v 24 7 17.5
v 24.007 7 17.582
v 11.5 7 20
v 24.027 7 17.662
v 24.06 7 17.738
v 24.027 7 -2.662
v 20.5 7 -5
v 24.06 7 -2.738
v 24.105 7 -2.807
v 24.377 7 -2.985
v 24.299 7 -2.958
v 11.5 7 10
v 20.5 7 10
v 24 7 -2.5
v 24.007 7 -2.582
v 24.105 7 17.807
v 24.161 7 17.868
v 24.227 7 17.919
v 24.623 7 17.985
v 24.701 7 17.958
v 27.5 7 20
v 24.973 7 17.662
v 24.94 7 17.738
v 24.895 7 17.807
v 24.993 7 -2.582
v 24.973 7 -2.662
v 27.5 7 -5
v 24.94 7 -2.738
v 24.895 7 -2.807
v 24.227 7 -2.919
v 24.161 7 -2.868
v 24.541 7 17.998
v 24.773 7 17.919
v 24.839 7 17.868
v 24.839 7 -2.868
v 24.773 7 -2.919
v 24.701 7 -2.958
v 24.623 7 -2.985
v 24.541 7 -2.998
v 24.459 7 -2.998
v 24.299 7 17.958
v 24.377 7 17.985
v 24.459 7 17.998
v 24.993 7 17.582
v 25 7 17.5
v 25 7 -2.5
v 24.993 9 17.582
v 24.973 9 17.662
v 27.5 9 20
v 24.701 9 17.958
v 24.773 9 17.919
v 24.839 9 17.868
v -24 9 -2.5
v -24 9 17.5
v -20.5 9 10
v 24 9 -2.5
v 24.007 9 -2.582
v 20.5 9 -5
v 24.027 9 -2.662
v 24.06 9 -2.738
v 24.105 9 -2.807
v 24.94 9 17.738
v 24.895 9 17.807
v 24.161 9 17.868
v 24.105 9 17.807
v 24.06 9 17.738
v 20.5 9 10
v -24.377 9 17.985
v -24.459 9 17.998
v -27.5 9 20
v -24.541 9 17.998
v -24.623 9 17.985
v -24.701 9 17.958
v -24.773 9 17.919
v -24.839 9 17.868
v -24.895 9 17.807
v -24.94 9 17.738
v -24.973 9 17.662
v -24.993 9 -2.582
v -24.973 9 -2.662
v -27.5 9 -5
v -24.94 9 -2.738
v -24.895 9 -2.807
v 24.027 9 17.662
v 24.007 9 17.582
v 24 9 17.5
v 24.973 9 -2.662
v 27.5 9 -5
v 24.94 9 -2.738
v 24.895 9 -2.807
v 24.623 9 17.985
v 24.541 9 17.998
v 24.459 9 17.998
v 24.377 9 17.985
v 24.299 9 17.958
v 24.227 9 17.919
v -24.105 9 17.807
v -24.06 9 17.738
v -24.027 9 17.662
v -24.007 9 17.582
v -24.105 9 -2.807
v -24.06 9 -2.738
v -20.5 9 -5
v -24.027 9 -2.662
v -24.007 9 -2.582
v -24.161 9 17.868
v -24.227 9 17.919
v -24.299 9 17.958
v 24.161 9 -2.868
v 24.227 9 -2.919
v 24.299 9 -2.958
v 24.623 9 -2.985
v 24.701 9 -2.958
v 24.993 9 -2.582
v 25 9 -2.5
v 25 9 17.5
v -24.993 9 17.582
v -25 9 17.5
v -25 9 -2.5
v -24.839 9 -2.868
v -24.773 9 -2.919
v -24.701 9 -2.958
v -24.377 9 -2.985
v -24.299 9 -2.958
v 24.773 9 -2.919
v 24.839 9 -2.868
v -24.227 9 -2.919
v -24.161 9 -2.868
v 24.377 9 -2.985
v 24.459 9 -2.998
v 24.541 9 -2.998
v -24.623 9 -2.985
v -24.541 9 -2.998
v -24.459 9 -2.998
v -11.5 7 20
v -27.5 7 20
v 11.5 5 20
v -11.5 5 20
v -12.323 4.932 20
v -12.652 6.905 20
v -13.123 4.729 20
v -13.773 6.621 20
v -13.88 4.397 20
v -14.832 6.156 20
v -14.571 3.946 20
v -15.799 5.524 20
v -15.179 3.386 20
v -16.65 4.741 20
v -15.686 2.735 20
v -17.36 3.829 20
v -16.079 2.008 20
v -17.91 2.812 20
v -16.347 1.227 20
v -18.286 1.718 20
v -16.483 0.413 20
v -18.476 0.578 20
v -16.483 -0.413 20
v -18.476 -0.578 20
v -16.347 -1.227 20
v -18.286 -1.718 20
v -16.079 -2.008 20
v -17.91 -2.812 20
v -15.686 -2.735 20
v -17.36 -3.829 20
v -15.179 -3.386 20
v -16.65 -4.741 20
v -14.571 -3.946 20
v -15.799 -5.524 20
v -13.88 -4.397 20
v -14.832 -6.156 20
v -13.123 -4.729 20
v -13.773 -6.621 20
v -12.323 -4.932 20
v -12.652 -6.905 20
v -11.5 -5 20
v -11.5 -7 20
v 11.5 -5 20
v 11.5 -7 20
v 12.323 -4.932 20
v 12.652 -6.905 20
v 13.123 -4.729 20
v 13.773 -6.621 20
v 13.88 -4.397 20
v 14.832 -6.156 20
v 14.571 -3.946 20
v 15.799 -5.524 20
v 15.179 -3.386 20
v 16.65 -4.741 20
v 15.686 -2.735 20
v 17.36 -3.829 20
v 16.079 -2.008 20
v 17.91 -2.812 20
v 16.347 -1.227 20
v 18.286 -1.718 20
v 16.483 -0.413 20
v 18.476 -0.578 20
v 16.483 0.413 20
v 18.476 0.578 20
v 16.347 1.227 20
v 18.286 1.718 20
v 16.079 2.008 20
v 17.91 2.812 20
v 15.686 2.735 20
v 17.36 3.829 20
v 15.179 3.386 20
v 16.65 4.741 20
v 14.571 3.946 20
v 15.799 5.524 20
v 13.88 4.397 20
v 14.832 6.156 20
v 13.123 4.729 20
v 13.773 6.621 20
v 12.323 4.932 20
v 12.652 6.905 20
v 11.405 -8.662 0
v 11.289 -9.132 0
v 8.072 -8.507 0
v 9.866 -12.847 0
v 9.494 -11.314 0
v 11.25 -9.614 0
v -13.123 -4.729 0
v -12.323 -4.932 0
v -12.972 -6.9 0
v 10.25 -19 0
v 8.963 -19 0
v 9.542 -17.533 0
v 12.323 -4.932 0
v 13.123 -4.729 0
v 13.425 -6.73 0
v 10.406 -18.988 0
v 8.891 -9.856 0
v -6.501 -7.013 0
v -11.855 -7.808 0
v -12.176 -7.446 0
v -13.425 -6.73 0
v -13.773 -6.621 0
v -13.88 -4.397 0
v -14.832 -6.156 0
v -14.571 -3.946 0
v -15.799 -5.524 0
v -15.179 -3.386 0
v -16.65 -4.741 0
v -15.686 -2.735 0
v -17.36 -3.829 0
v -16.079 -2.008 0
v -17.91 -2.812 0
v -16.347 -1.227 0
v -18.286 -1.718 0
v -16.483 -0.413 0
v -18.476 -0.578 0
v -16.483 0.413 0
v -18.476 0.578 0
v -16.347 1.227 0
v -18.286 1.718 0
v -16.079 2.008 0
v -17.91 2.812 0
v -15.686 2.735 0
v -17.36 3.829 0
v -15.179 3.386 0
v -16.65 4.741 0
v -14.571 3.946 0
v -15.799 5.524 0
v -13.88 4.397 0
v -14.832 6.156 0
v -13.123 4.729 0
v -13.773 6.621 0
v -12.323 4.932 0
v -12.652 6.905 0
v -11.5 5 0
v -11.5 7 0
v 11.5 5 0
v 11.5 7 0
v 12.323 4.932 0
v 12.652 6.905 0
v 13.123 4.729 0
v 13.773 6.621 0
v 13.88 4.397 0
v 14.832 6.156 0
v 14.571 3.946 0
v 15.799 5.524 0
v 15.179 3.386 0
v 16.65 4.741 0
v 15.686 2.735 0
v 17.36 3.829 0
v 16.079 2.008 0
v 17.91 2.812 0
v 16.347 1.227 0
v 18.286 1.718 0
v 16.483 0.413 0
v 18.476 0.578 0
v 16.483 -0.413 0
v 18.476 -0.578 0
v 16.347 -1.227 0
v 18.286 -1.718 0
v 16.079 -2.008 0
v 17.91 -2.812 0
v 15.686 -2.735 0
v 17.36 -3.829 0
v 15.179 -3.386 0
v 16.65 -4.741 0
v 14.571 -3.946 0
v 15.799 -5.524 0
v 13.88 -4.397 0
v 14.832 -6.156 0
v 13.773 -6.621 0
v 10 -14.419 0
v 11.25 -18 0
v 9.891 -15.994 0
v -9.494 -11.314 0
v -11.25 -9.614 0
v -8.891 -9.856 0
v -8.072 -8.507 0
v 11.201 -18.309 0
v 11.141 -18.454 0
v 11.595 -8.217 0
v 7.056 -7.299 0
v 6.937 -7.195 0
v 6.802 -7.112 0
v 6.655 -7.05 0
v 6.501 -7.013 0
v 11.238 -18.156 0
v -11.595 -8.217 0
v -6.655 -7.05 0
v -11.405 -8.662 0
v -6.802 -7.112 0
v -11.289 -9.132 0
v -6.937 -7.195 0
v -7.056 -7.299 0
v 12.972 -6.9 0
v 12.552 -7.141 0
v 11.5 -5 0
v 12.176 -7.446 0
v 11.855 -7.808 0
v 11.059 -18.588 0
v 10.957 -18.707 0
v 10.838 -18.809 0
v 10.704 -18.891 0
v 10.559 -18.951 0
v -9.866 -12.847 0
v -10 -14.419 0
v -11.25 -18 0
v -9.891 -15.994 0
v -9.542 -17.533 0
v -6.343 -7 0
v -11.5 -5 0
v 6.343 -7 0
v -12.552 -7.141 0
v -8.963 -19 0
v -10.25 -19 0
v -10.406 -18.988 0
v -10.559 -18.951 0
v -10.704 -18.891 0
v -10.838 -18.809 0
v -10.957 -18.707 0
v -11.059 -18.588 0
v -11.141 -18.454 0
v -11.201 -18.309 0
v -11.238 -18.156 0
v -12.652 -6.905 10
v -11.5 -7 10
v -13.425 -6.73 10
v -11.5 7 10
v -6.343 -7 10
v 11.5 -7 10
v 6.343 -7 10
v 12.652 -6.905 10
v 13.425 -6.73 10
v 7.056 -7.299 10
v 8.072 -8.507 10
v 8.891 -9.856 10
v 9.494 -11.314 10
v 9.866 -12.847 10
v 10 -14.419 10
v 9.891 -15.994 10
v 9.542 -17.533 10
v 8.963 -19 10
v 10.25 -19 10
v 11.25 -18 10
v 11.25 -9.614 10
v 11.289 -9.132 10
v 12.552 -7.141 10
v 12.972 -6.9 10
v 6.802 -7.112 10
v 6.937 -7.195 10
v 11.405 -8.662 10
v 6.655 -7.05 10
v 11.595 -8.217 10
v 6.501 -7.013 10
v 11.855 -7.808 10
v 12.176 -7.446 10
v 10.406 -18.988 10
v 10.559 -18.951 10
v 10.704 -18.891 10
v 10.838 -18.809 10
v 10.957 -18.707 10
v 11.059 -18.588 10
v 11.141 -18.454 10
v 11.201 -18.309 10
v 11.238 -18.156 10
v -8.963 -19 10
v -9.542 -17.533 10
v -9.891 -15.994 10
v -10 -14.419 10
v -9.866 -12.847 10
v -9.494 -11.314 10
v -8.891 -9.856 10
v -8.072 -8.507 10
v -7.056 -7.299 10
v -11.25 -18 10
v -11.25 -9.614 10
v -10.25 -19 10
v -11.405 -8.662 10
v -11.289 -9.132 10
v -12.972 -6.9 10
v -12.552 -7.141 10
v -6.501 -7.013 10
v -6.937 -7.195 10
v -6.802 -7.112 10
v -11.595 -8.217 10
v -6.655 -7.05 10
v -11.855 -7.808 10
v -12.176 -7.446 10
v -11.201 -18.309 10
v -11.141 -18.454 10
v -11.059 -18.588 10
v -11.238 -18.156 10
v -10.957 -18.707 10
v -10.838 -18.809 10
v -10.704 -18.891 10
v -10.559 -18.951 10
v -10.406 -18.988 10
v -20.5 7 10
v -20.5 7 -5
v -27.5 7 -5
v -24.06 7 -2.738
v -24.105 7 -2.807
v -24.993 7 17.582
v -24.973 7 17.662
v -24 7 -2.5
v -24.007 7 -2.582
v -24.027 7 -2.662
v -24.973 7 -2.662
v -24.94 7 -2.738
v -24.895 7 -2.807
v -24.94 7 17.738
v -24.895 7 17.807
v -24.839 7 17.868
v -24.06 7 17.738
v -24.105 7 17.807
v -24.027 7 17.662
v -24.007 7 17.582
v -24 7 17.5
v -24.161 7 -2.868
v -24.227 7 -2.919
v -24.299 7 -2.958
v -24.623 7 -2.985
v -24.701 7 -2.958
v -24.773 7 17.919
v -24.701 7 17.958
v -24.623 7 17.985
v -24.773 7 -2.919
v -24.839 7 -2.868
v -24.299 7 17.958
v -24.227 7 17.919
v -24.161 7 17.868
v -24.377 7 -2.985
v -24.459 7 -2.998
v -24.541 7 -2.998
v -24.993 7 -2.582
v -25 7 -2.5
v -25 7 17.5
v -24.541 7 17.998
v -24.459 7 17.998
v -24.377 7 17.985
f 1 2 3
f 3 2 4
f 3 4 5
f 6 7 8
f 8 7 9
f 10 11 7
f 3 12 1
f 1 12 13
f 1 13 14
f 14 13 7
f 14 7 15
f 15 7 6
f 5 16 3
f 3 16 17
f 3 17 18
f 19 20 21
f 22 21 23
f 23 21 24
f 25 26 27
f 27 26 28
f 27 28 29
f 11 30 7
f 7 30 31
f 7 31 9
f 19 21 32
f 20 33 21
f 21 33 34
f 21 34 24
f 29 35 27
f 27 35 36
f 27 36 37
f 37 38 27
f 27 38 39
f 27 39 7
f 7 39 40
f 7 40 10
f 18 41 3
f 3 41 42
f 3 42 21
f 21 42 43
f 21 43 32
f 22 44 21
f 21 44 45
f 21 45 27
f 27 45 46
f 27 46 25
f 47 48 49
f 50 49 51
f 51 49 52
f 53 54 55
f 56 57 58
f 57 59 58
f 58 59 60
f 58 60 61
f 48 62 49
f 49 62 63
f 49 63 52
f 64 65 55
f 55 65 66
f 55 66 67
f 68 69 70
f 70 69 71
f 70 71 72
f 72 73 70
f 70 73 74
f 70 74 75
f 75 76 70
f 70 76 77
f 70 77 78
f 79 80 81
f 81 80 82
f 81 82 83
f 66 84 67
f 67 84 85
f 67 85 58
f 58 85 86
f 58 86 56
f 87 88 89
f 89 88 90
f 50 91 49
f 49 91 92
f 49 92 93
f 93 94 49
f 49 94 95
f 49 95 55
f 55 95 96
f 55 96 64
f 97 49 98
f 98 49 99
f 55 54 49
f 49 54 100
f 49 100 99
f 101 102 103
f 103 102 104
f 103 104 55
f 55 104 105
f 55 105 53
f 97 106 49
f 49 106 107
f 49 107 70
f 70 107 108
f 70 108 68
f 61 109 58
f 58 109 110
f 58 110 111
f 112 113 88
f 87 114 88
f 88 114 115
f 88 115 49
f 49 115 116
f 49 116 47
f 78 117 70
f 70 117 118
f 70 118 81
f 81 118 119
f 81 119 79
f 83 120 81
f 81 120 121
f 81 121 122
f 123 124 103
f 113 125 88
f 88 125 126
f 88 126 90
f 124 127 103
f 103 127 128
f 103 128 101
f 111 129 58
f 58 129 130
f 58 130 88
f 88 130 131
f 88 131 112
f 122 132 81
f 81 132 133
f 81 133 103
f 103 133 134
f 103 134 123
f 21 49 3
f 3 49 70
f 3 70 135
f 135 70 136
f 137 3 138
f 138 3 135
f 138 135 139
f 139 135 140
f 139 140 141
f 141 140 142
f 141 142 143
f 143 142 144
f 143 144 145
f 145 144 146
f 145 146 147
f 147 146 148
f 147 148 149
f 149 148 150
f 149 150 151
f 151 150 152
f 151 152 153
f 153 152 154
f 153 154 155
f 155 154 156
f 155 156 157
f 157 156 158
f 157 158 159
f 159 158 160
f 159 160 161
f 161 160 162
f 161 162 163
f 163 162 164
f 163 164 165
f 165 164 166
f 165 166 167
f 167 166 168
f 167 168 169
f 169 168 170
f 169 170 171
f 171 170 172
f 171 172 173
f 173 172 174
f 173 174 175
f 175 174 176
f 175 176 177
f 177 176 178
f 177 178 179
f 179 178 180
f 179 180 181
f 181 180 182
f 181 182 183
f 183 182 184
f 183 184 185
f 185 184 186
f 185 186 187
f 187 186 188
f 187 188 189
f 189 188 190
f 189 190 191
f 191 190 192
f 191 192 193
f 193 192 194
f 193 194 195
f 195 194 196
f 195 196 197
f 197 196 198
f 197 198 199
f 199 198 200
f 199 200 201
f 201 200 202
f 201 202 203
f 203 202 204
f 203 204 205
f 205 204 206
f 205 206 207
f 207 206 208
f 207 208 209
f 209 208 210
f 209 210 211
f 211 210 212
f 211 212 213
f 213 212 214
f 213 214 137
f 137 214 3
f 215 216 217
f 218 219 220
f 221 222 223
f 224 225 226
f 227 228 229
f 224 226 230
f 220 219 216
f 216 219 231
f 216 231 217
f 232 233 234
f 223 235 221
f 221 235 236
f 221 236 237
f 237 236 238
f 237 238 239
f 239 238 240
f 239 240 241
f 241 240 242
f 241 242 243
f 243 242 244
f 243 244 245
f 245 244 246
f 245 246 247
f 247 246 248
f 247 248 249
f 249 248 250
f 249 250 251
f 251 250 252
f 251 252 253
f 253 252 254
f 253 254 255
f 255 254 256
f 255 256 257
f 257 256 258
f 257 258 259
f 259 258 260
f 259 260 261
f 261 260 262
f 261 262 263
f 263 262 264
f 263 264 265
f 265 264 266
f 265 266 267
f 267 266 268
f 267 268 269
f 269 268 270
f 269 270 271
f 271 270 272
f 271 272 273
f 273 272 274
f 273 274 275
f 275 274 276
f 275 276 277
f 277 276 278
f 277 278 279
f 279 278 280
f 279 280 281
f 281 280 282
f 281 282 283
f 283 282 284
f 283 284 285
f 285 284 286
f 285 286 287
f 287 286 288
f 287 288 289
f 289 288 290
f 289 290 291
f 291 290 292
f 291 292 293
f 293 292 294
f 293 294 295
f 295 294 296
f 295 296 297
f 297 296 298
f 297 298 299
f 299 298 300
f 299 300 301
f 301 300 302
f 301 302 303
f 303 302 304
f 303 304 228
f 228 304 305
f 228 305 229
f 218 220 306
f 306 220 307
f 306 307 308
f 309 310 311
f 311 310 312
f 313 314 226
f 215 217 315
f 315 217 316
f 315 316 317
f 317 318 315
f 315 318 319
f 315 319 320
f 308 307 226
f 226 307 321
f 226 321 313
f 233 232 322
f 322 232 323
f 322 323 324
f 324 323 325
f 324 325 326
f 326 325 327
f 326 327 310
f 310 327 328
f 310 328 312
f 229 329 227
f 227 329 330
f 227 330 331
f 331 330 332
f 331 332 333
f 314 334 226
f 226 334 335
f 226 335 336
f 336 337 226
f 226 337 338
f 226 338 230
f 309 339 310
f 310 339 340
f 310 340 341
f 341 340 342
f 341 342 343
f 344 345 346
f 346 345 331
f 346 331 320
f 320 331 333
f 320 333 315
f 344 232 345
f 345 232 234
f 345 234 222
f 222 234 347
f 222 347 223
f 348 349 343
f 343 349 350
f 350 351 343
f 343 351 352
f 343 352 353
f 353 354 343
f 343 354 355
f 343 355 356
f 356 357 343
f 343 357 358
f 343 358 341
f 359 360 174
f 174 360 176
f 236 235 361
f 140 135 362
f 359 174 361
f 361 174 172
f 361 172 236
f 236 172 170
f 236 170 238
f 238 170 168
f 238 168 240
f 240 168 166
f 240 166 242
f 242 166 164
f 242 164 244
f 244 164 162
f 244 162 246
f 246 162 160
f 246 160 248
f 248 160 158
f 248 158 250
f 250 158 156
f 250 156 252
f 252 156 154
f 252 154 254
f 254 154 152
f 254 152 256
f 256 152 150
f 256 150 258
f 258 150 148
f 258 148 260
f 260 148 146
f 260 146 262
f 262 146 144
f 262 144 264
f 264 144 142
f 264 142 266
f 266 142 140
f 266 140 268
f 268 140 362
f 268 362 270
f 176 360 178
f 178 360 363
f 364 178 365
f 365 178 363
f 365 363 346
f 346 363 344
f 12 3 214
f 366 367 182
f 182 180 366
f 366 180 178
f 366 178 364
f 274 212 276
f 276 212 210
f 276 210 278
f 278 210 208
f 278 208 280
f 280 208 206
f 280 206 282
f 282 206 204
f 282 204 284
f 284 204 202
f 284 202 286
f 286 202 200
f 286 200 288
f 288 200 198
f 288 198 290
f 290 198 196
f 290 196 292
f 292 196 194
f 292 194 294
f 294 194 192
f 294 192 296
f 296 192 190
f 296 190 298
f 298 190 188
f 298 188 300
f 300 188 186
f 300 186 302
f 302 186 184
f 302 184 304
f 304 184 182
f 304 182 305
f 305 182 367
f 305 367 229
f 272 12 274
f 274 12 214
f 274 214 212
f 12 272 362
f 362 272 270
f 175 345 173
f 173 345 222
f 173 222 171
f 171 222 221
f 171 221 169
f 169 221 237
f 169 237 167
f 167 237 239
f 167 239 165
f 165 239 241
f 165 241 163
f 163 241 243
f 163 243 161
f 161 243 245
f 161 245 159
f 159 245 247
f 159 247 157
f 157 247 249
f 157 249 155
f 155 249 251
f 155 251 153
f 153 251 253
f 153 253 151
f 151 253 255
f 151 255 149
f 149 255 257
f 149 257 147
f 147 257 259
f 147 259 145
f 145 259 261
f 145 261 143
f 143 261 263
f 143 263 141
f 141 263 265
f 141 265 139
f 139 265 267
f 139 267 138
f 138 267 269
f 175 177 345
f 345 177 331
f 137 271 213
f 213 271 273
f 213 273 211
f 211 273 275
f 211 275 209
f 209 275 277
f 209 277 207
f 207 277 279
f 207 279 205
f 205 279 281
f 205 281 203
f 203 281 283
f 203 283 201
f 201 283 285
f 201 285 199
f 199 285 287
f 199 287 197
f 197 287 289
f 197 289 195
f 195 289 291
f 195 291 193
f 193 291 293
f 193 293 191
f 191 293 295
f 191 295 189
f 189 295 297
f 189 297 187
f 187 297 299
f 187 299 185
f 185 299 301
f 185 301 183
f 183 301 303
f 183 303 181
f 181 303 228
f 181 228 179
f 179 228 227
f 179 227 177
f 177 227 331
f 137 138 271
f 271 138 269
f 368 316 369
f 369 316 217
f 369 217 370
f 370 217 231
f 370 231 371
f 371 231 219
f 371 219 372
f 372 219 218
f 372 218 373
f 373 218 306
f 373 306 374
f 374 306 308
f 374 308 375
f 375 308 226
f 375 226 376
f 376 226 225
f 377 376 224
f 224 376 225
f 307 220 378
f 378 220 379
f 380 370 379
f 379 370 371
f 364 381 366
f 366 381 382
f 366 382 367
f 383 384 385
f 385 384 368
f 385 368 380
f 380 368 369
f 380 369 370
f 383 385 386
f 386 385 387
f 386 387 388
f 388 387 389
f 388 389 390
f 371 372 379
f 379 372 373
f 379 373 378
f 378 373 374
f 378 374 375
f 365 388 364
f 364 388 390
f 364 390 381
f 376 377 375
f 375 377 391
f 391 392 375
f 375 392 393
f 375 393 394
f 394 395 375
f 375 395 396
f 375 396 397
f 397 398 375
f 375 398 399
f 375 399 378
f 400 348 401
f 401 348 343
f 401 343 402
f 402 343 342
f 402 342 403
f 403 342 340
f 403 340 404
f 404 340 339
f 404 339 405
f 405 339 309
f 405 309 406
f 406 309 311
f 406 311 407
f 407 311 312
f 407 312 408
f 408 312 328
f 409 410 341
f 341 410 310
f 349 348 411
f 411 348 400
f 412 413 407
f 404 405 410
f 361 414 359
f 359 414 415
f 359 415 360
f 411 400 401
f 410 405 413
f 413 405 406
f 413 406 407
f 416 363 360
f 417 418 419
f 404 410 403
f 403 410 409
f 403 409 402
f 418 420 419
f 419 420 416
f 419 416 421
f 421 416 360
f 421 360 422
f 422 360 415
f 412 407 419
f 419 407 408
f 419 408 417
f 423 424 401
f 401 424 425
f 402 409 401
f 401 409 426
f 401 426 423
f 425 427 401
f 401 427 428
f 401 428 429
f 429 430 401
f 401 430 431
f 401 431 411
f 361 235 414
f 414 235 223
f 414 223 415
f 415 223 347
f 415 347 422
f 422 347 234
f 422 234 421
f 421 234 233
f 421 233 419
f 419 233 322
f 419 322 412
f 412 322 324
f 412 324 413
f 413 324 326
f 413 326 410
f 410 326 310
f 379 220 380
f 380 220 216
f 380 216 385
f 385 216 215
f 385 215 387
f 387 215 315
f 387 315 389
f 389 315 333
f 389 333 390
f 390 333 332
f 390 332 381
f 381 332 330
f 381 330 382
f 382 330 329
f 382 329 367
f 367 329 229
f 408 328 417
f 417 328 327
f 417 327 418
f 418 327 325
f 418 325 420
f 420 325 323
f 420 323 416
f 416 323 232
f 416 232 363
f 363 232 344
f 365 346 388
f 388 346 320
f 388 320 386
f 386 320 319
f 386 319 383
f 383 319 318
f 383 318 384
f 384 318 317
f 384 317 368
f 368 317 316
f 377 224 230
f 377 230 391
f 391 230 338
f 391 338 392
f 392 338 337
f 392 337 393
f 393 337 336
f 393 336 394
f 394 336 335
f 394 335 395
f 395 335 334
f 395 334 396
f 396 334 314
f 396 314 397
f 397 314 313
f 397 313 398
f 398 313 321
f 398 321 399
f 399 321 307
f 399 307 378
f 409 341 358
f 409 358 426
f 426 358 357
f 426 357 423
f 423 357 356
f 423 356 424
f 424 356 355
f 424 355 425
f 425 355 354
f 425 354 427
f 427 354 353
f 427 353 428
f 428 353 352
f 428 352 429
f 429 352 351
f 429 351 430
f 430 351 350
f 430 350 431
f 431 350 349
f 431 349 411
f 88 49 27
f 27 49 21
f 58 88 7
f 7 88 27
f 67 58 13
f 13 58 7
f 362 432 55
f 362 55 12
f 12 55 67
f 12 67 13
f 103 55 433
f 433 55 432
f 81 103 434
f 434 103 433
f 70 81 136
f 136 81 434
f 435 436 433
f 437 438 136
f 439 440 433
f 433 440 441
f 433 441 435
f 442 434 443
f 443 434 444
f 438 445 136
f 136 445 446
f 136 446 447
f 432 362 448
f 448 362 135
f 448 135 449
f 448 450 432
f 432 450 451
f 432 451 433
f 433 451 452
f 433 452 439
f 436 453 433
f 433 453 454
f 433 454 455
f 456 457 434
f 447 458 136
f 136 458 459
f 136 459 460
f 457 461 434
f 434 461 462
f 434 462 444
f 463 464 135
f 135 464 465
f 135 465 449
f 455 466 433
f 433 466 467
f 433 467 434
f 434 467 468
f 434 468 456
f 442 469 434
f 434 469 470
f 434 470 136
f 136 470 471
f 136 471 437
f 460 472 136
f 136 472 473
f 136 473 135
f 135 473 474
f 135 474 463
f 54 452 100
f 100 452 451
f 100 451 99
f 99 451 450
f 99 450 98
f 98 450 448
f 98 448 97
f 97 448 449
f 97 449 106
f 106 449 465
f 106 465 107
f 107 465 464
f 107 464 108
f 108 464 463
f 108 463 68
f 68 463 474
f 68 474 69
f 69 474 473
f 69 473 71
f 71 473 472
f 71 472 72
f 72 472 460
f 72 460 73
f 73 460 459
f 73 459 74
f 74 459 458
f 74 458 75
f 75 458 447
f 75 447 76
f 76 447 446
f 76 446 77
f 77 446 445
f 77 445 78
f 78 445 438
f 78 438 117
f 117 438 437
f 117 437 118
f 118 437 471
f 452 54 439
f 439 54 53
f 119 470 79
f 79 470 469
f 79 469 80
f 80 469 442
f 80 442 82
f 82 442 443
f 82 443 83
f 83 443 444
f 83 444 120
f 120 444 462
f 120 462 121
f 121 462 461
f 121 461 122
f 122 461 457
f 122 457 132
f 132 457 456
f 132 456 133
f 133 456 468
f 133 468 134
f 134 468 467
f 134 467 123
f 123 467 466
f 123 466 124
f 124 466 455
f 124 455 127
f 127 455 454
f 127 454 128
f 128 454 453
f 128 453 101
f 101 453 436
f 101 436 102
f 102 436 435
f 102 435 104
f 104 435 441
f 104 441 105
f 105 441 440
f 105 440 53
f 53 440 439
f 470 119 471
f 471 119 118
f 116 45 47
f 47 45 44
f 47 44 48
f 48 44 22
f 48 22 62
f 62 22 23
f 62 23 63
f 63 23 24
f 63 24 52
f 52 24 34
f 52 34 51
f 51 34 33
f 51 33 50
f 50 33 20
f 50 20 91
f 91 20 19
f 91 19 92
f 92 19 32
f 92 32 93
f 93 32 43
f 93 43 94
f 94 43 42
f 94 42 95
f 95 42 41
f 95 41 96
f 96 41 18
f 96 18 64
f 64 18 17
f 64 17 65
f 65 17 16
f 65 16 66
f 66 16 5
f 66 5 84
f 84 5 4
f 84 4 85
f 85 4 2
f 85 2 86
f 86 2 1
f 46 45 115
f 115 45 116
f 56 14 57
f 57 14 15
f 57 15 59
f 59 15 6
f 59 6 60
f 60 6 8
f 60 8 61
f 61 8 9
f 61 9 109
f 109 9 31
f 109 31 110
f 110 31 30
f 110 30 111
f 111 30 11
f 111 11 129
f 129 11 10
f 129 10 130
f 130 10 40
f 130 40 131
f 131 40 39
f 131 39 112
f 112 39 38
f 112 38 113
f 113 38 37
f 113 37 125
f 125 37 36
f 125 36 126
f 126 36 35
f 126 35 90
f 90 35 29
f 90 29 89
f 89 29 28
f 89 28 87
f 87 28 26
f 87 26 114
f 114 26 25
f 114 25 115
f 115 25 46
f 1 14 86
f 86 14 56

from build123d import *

# Parameters (mm, degrees)
BOSS_EXTRUDE1_DEPTH = 20
BOSS_EXTRUDE2_DEPTH = 10
FILLET1_R           = 3
FILLET2_R           = 1
BOSS_EXTRUDE4_DEPTH = 2
CUT_EXTRUDE1_REACH  = 44.805


with BuildPart() as part:
    # Sketch1 → Boss-Extrude1 (new body)
    with BuildSketch(Plane.XY):
        with BuildLine():
            Line((-11.5, 7), (11.5, 7))
            ThreePointArc((11.5, 7), (18.5, 0), (11.5, -7))
            Line((11.5, -7), (-11.5, -7))
            ThreePointArc((-11.5, -7), (-18.5, 0), (-11.5, 7))
        make_face()
        with BuildLine():
            Line((-11.5, 5), (11.5, 5))
            ThreePointArc((11.5, 5), (16.5, 0), (11.5, -5))
            Line((11.5, -5), (-11.5, -5))
            ThreePointArc((-11.5, -5), (-16.5, 0), (-11.5, 5))
        make_face(mode=Mode.SUBTRACT)
    extrude(amount=BOSS_EXTRUDE1_DEPTH)

    # Sketch2 → Boss-Extrude2 (add)
    with BuildSketch(Plane(origin=(0, 0, 0), x_dir=(-1, 0, 0), z_dir=(0, 0, -1))):
        with BuildLine():
            Line((11.25, -7), (6.75, -7))
            ThreePointArc((6.75, -7), (9.829603655, -12.636154321), (8.962619003, -19))
            Line((8.962619003, -19), (11.25, -19))
            Line((11.25, -19), (11.25, -7))
        make_face()
        with BuildLine():
            Line((-11.25, -19), (-8.962619003, -19))
            ThreePointArc((-8.962619003, -19), (-9.829603655, -12.636154321), (-6.75, -7))
            Line((-6.75, -7), (-11.25, -7))
            Line((-11.25, -7), (-11.25, -19))
        make_face()
    extrude(amount=-BOSS_EXTRUDE2_DEPTH)

    # Fillet1
    # the kernel refuses this fillet: 3 mm, written as the material it adds along each edge
    with BuildSketch(Plane(origin=(-11.25, -7, 0), x_dir=(-0.9923889232111901, 0.12314310816174315, 0), z_dir=(0, 0, 1))) as fillet1_piece_1:
        with BuildLine():
            CenterArc((2.655216223, 2.963972865), FILLET1_R, 187.073535236, 74.037985837)
            Line((-0.321950546, 2.594543541), (-0.619667223, 2.557600608))
            Line((-0.619667223, 2.557600608), (-0.297716677, -0.036942932))
            Line((-0.297716677, -0.036942932), (0.036942932, -0.297716677))
            ThreePointArc((0.036942932, -0.297716677), (0.285040163, -0.2669309), (2.145327536, -0.296397287))
            Line((2.145327536, -0.296397287), (2.191681053, 0))
        make_face()
    extrude(amount=10)
    with BuildSketch(Plane(origin=(11.25, -7, 0), x_dir=(0.9923889232111899, 0.12314310816174322, 0), z_dir=(0, 0, 1))) as fillet1_piece_2:
        with BuildLine():
            CenterArc((2.655216223, -2.963972865), FILLET1_R, 98.888478927, 74.037985837)
            Line((-0.321950546, -2.594543541), (-0.619667223, -2.557600608))
            Line((-0.619667223, -2.557600608), (-0.297716677, 0.036942932))
            Line((-0.297716677, 0.036942932), (0.036942932, 0.297716677))
            ThreePointArc((0.036942932, 0.297716677), (0.285040163, 0.2669309), (2.145327536, 0.296397287))
            Line((2.145327536, 0.296397287), (2.191681053, 0))
        make_face()
    extrude(amount=10)

    # Fillet2
    fillet2_edges = [part.edges().sort_by_distance(p)[0] for p in [
        (-6.75, -7, 5),
        (-11.25, -19, 5),
        (6.75, -7, 5),
        (11.25, -19, 5),
    ]]
    fillet(fillet2_edges, radius=FILLET2_R)

    # Sketch3 → Boss-Extrude4 (add)
    with BuildSketch(Plane(origin=(0, 7, 0), x_dir=(1, 0, 0), z_dir=(0, 1, 0))):
        Polygon((-27.5, -20), (27.5, -20), (27.5, 5), (20.5, 5), (20.5, -10), (-20.5, -10), (-20.5, 5), (-27.5, 5), align=None)
    extrude(amount=BOSS_EXTRUDE4_DEPTH)

    # Sketch4 → Cut-Extrude1 (cut, up to next)
    with BuildSketch(Plane.XZ.offset(-7), mode=Mode.PRIVATE) as cut_extrude1_sk1:
        with BuildLine():
            Line((-24, 17.5), (-24, -2.5))
            ThreePointArc((-24, -2.5), (-24.5, -3), (-25, -2.5))
            Line((-25, -2.5), (-25, 17.5))
            ThreePointArc((-25, 17.5), (-24.5, 18), (-24, 17.5))
        make_face()
    cut_extrude1_tool1 = extrude(cut_extrude1_sk1.sketch, amount=-CUT_EXTRUDE1_REACH, mode=Mode.PRIVATE) & part.part
    cut_extrude1 = cut_extrude1_tool1.solids().sort_by_distance((-24.5, 7, 7.5))[0]
    add(cut_extrude1, mode=Mode.SUBTRACT)

    # Mirror1: Cut-Extrude1 across plane
    add(cut_extrude1.mirror(Plane(origin=(0, 0, 0), x_dir=(0, 0, 1), z_dir=(1, 0, 0))), mode=Mode.SUBTRACT)


solid = part.part
